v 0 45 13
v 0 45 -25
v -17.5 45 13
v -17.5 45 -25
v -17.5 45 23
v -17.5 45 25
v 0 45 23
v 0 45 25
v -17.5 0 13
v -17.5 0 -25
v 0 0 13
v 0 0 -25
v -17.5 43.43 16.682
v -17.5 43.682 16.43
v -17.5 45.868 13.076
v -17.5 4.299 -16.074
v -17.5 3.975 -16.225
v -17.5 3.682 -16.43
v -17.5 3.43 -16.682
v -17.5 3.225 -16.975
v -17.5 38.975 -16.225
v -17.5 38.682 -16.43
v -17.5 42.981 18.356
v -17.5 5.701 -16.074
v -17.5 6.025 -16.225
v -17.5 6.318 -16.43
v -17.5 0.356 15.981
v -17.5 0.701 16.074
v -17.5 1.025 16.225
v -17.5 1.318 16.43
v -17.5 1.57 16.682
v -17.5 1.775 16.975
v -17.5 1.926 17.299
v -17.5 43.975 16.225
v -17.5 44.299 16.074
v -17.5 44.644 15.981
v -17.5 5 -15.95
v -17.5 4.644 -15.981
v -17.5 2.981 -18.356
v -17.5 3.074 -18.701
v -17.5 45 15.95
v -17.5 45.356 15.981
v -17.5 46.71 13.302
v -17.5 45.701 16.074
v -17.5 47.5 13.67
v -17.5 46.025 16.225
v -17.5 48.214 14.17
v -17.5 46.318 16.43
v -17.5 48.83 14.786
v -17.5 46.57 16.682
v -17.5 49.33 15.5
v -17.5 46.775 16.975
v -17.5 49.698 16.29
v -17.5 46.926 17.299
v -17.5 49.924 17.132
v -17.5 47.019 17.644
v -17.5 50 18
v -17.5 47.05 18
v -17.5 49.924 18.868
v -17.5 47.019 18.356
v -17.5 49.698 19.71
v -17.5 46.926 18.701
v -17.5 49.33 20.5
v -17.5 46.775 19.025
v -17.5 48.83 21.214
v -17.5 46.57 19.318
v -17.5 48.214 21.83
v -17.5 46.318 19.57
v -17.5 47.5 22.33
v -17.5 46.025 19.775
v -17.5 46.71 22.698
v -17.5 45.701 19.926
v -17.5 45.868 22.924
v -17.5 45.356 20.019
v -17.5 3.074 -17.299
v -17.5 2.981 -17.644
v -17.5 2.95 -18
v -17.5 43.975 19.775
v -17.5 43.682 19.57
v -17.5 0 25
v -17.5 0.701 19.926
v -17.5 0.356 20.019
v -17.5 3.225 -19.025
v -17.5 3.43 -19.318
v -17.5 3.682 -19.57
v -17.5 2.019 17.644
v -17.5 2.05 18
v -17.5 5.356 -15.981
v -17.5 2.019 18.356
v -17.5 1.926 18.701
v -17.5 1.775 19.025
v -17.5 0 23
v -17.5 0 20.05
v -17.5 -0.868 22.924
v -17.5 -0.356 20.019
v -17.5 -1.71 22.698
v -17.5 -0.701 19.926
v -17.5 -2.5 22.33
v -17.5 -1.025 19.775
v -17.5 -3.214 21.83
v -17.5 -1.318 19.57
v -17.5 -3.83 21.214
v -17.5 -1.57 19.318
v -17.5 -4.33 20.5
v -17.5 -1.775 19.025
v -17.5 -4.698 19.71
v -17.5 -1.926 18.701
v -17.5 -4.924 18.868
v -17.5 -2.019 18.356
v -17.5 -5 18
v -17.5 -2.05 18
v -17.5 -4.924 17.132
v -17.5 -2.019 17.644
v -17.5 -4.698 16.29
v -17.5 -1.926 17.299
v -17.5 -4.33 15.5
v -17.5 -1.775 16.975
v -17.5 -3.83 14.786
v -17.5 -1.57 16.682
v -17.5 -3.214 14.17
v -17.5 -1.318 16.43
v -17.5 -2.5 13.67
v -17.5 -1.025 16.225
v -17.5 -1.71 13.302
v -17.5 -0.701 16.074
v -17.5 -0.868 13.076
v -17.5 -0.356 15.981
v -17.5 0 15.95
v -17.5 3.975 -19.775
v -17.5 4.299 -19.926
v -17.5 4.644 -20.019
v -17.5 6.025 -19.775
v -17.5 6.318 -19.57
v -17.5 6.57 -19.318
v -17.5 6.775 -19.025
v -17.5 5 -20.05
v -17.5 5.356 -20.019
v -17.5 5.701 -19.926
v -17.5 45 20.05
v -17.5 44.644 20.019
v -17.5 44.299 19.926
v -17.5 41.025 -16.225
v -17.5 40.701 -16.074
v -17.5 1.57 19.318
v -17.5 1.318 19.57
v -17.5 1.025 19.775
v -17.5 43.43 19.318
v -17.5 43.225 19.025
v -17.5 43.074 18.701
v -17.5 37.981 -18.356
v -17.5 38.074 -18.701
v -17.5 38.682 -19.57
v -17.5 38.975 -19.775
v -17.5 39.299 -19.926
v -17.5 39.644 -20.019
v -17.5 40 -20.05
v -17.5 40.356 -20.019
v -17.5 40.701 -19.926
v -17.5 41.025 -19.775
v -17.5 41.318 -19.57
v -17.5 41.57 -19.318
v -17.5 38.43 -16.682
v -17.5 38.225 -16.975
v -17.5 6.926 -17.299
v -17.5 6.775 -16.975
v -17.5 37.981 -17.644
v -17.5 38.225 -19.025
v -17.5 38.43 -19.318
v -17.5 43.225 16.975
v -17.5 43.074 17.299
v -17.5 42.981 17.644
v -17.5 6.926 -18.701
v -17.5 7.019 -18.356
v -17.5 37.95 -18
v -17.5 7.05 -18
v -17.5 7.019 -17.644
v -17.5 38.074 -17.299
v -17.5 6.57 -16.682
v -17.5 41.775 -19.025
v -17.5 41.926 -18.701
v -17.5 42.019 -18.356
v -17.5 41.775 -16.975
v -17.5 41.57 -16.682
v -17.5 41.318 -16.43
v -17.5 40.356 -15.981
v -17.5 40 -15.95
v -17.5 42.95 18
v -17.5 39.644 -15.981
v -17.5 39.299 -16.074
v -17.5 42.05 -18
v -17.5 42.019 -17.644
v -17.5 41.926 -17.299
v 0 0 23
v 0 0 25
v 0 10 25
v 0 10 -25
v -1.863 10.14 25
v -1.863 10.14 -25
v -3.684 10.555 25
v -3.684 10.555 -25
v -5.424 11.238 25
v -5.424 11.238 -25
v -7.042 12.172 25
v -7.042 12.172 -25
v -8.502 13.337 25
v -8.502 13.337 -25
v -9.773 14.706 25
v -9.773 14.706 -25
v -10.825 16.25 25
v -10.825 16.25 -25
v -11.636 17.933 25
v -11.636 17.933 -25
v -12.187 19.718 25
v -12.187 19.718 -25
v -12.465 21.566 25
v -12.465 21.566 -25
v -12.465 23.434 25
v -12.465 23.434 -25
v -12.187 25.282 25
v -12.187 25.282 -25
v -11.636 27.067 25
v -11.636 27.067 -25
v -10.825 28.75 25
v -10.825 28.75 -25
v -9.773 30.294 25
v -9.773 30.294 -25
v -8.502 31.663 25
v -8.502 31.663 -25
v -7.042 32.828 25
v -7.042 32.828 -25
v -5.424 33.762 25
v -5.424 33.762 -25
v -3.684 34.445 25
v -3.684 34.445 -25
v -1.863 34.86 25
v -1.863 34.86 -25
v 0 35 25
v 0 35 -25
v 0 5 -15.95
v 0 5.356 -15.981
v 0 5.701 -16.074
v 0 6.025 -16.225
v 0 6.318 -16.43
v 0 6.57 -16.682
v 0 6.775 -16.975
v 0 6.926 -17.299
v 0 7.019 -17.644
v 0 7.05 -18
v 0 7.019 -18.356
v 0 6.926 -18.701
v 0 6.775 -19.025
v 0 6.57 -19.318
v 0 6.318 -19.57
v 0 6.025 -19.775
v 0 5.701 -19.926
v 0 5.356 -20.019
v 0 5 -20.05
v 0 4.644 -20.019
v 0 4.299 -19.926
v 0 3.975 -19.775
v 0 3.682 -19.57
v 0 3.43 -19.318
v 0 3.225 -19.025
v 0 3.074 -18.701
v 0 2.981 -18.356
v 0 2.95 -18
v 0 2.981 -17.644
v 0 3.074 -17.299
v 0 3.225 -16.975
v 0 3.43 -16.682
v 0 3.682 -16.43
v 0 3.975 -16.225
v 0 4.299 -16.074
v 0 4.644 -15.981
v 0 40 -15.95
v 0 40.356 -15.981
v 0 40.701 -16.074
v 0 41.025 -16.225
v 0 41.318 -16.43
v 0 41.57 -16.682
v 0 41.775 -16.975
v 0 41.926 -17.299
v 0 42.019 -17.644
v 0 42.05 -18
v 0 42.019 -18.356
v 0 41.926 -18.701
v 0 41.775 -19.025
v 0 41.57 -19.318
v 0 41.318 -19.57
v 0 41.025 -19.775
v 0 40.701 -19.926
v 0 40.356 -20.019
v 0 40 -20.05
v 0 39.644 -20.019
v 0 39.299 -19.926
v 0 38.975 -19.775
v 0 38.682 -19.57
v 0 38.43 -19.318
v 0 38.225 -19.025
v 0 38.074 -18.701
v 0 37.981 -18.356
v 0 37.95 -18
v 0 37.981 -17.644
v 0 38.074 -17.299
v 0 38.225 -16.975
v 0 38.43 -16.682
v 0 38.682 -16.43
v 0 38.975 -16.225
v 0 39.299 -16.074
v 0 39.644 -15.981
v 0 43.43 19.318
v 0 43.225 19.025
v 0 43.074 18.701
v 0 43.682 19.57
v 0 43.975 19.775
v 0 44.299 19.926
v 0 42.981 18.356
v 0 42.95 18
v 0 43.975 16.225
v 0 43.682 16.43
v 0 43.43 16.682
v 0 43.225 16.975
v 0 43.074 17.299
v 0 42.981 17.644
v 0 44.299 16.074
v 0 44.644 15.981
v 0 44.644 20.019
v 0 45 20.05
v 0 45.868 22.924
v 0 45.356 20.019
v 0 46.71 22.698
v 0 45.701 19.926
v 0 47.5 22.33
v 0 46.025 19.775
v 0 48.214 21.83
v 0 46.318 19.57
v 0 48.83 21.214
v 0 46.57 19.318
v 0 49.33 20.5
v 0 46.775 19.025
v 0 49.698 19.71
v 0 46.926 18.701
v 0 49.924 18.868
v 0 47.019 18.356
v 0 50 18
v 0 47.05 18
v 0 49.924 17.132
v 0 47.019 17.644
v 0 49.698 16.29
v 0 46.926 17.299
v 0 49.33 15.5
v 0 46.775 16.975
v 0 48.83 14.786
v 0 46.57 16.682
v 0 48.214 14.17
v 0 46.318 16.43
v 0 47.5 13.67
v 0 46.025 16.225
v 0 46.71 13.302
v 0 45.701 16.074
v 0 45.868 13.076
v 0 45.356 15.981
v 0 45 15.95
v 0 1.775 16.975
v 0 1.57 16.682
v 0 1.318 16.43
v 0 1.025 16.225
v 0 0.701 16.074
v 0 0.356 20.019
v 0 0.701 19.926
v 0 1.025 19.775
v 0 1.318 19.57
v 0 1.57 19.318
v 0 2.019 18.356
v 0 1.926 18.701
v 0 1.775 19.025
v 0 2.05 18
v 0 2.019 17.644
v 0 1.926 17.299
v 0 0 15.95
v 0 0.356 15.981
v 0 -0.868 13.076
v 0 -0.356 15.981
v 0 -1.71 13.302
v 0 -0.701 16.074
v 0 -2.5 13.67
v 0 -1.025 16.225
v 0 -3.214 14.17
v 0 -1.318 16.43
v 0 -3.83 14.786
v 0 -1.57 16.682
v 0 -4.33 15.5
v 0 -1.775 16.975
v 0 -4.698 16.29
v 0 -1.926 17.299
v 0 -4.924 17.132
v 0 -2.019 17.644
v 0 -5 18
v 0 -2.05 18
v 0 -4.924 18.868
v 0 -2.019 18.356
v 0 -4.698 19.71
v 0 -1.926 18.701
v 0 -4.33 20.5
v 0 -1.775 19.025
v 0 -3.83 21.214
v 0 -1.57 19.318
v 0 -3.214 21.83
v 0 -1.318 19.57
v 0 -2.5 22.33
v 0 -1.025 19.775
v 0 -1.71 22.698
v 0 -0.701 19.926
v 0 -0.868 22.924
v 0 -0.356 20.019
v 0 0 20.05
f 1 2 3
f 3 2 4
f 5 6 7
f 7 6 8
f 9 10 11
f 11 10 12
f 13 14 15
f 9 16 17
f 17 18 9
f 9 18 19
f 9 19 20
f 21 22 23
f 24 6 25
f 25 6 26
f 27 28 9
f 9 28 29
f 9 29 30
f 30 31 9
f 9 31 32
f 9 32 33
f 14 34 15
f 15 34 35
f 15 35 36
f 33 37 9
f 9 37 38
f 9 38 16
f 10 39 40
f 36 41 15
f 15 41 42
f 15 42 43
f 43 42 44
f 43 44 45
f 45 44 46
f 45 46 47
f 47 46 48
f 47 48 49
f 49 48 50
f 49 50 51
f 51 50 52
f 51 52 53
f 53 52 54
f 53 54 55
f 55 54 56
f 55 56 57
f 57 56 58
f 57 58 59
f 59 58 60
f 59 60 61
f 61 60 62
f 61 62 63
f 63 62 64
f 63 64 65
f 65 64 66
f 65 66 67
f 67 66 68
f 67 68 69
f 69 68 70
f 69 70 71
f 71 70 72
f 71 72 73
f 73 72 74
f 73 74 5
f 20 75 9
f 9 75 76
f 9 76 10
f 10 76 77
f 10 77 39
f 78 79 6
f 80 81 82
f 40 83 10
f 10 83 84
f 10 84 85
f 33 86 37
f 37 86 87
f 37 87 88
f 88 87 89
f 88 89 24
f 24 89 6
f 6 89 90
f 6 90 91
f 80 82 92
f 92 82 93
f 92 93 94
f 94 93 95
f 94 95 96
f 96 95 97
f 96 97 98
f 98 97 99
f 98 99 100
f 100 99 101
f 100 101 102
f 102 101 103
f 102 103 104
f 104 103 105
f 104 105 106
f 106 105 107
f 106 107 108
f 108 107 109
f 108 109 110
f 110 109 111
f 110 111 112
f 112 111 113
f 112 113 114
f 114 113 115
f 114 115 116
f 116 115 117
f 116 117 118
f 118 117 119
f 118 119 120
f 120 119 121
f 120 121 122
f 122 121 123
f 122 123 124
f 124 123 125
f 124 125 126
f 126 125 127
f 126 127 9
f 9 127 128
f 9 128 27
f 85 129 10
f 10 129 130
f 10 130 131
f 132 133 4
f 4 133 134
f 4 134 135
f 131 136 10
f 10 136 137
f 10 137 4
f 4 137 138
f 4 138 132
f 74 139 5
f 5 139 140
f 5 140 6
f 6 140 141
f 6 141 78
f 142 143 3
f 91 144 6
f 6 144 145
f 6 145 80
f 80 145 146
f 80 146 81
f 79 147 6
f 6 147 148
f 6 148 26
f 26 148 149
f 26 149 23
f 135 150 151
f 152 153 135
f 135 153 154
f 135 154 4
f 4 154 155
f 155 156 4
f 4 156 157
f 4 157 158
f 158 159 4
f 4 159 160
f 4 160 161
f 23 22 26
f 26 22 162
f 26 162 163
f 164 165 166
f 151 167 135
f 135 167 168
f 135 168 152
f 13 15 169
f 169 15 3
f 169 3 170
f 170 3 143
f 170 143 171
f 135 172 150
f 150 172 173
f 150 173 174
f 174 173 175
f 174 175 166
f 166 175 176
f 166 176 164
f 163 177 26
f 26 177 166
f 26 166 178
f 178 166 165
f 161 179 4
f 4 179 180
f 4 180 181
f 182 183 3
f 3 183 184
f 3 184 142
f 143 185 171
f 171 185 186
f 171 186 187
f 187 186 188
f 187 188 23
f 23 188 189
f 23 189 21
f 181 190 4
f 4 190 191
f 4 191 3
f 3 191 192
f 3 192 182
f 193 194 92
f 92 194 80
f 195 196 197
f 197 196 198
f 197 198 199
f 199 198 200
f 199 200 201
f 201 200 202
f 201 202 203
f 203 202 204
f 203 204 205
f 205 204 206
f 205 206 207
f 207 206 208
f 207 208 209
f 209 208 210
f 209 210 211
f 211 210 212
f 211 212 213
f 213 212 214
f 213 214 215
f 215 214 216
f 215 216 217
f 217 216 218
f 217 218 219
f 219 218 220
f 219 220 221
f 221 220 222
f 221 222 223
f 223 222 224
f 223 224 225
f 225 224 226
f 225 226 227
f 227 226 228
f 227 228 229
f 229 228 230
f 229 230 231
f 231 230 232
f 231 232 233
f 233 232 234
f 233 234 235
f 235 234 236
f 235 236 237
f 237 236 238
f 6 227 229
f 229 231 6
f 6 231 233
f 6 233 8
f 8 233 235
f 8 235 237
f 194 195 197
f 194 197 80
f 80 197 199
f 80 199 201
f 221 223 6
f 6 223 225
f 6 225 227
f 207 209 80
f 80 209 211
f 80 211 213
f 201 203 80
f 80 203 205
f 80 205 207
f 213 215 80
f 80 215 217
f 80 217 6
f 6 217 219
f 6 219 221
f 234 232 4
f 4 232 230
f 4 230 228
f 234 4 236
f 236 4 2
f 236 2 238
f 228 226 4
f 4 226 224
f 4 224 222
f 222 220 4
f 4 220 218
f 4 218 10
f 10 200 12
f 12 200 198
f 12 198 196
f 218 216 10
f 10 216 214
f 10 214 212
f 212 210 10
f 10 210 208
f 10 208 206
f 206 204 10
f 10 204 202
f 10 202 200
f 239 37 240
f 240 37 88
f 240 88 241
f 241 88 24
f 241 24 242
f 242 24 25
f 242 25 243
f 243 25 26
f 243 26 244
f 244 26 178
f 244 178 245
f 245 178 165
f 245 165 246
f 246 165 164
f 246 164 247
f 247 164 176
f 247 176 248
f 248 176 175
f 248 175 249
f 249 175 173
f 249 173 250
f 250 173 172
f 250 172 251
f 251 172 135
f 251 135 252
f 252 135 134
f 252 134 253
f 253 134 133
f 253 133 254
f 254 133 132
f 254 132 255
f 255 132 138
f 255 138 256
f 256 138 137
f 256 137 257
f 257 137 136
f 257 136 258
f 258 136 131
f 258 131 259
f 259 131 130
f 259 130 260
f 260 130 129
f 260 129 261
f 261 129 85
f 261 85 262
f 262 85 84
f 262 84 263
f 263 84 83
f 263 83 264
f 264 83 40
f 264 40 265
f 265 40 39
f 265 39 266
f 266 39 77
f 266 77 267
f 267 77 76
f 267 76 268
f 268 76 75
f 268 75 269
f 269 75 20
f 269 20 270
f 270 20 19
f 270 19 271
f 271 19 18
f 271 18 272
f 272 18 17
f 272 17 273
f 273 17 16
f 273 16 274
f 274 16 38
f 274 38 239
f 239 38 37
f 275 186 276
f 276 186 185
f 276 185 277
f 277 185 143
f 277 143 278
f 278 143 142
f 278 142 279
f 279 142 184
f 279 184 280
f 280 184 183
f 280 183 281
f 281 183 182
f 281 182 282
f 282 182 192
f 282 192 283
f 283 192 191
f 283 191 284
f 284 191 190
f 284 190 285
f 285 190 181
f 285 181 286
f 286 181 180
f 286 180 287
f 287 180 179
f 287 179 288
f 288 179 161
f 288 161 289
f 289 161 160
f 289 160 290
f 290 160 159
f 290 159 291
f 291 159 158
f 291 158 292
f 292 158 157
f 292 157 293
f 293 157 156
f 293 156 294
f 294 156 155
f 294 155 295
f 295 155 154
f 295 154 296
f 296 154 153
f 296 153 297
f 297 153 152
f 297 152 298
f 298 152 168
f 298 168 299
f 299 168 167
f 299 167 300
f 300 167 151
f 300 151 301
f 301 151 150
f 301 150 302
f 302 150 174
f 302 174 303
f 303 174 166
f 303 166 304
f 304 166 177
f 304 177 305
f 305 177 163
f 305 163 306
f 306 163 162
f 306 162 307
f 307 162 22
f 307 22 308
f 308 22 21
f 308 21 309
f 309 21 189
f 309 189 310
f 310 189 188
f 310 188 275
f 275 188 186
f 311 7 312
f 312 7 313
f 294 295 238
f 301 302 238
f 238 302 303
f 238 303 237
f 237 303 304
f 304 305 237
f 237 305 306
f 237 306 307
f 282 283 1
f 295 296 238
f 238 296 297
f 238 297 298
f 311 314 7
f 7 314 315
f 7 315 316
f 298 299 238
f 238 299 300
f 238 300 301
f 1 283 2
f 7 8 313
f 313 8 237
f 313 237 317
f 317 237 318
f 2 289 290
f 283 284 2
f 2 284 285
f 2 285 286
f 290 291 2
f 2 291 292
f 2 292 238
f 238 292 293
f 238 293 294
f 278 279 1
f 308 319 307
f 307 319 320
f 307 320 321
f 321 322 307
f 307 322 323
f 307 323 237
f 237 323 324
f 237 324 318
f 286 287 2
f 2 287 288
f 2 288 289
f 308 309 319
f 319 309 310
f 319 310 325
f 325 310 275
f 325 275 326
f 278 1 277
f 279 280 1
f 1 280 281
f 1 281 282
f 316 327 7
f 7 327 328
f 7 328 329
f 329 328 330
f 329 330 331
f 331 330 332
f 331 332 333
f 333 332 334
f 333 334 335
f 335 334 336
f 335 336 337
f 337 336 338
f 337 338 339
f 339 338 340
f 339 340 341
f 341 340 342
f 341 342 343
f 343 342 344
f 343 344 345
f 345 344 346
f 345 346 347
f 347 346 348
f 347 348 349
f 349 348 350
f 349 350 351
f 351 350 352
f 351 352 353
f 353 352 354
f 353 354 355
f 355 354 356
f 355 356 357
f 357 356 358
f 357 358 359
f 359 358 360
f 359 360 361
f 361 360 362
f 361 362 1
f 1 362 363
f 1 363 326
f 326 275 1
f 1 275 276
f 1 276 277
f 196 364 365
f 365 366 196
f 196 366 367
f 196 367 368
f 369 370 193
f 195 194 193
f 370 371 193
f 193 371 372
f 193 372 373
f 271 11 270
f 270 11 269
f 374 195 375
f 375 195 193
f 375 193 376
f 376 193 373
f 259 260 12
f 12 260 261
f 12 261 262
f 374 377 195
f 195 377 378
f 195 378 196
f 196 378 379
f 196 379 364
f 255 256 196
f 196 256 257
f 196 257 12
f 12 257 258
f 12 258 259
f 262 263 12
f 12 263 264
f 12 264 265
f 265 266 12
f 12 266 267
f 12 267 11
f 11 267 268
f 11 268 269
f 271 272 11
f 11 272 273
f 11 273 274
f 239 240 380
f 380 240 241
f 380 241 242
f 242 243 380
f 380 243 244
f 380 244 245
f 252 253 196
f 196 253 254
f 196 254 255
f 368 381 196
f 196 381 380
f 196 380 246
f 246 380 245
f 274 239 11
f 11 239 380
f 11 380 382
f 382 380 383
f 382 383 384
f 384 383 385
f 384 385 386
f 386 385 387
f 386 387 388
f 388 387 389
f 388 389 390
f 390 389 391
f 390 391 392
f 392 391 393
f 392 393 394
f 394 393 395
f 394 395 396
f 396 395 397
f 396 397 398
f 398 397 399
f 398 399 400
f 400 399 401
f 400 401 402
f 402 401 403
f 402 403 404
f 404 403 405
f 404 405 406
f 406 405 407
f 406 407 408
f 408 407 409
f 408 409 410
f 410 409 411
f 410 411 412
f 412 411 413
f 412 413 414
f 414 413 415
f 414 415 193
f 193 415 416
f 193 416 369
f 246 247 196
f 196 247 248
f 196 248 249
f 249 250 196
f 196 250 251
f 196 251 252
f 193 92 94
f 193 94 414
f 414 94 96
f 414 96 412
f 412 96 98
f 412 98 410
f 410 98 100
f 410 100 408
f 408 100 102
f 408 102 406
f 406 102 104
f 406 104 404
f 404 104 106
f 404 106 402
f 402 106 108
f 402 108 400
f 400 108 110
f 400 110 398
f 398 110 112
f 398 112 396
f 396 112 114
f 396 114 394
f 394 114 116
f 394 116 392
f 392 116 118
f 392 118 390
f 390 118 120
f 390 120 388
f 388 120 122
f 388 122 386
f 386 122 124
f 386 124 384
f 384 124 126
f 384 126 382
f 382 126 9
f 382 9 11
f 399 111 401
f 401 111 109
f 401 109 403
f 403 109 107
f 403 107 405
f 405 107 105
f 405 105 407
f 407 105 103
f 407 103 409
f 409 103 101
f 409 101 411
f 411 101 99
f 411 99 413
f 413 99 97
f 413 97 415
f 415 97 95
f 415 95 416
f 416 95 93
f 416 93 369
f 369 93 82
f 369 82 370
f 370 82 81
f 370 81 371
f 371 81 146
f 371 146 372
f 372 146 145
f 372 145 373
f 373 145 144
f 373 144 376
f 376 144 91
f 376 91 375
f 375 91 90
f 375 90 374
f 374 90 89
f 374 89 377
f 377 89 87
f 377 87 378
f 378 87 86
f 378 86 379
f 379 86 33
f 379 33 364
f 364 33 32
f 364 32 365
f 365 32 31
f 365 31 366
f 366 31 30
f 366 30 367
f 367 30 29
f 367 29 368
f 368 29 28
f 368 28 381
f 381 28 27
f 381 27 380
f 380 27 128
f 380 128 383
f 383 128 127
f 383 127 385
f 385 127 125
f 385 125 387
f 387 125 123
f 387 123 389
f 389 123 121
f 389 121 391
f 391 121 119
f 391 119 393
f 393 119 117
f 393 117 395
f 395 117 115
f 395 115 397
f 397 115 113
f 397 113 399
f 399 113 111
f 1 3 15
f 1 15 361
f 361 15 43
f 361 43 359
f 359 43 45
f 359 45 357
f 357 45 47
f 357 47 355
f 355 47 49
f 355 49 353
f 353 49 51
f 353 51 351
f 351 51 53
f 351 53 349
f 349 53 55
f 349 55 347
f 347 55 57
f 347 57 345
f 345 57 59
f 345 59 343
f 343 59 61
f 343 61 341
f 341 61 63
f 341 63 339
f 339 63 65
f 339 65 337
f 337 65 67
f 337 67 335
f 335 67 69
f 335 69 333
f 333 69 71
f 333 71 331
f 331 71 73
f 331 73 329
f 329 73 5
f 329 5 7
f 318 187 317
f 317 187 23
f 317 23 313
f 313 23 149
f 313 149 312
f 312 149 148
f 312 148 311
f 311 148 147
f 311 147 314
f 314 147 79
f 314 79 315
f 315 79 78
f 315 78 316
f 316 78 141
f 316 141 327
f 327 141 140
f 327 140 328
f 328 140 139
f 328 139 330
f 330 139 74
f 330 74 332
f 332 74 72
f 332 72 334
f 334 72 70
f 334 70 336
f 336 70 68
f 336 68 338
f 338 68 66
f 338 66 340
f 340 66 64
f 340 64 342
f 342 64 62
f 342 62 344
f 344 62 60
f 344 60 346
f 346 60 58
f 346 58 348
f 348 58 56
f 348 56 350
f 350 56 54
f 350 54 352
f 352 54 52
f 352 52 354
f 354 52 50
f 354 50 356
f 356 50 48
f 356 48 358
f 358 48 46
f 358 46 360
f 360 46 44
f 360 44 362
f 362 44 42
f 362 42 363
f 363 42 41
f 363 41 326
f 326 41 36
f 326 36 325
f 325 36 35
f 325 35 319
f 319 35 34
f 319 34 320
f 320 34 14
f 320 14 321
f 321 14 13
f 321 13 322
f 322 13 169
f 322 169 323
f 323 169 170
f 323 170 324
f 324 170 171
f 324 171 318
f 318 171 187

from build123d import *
from build123d.topology import SkipClean

# Parameters (mm, degrees)
BOSS_EXTRUDE1_DEPTH             = 25
BOSS_EXTRUDE2_REACH             = 65.362
BOSS_EXTRUDE2_DIRECTION_2_DEPTH = 30
SKETCH9_R                       = 2.05
CUT_EXTRUDE3_DEPTH              = 35
BOSS_EXTRUDE5_REACH             = 63.601
SKETCH13_R                      = 1.55
CUT_EXTRUDE4_DEPTH              = 88.693844753
SKETCH16_W                      = 63
SKETCH16_H                      = 45
CUT_EXTRUDE5_DEPTH              = 65.196143
BOSS_EXTRUDE6_DEPTH             = 17.5
SKETCH18_R                      = 2.05
CUT_EXTRUDE6_DEPTH              = 17.5


with BuildPart() as part:
    # Sketch1 → Boss-Extrude1 (new, symmetric)
    with BuildSketch(Plane.XY):
        with BuildLine():
            Line((-17.5, 22.5), (-17.5, 0))
            Line((-17.5, 0), (17.5, 0))
            Line((17.5, 0), (17.5, 22.5))
            Line((17.5, 22.5), (12.5, 22.5))
            ThreePointArc((12.5, 22.5), (0, 10), (-12.5, 22.5))
            Line((-12.5, 22.5), (-17.5, 22.5))
        make_face()
    boss_extrude1 = extrude(amount=BOSS_EXTRUDE1_DEPTH, both=True)

    # Boss-Extrude2: up to this face of the body (flat: up to its plane)
    boss_extrude2_end = Plane(part.part.faces().sort_by_distance((17.5, 11.25, 0))[0])
    # Sketch5 → Boss-Extrude2 (add, up to the picked face)
    with BuildSketch(Plane(origin=(26.115381057, 0, 15.077722283), x_dir=(0.500000000000001, 0, -0.8660254037844382), z_dir=(0.8660254037844382, 0, 0.500000000000001)), mode=Mode.PRIVATE) as boss_extrude2_sk1:
        with BuildLine():
            Line((-8.7, 22.5), (-3.75, 22.5))
            ThreePointArc((-3.75, 22.5), (8.75, 10), (21.25, 22.5))
            Line((21.25, 22.5), (26.2, 22.5))
            ThreePointArc((26.2, 22.5), (8.75, 5.05), (-8.7, 22.5))
        make_face()
    boss_extrude2_tool1 = split(extrude(boss_extrude2_sk1.sketch, amount=-BOSS_EXTRUDE2_REACH, mode=Mode.PRIVATE), bisect_by=boss_extrude2_end, keep=Keep.BOTH, mode=Mode.PRIVATE)
    boss_extrude2 = boss_extrude2_tool1.solids().sort_by(Axis((23.002881, 22.109806, 20.46873), (-0.8660254037844382, 0, -0.500000000000001)))[0]
    add(boss_extrude2)

    # Sketch5 → Boss-Extrude2 direction 2 (add)
    with BuildSketch(Plane(origin=(26.115381057, 0, 15.077722283), x_dir=(0.500000000000001, 0, -0.8660254037844382), z_dir=(0.8660254037844382, 0, 0.500000000000001))):
        with BuildLine():
            Line((-8.7, 22.5), (-3.75, 22.5))
            ThreePointArc((-3.75, 22.5), (8.75, 10), (21.25, 22.5))
            Line((21.25, 22.5), (26.2, 22.5))
            ThreePointArc((26.2, 22.5), (8.75, 5.05), (-8.7, 22.5))
        make_face()
    boss_extrude2_direction_2 = extrude(amount=BOSS_EXTRUDE2_DIRECTION_2_DEPTH)

    # Sketch9 → Cut-Extrude3 (cut)
    with BuildSketch(Plane.ZY.offset(17.5)):
        with Locations((-18, 5)):
            Circle(SKETCH9_R)
    cut_extrude3 = extrude(amount=-CUT_EXTRUDE3_DEPTH, mode=Mode.SUBTRACT)

    # Boss-Extrude5: up to this face of the body (flat: up to its plane)
    boss_extrude5_end = Plane(part.part.faces().sort_by_distance((17.5, 17.19483523, 0))[0])
    # Sketch12 → Boss-Extrude5 (add, up to the picked face)
    with BuildSketch(Plane(origin=(21.973076211, 0, 12.686161466), x_dir=(0.4999999999999999, 0, -0.8660254037844388), z_dir=(0.8660254037844388, 0, 0.4999999999999999)), mode=Mode.PRIVATE) as boss_extrude5_sk1:
        with BuildLine():
            Line((-3.75, 22.5), (21.25, 22.5))
            ThreePointArc((21.25, 22.5), (8.75, 10), (-3.75, 22.5))
        make_face()
    boss_extrude5_tool1 = split(extrude(boss_extrude5_sk1.sketch, amount=-BOSS_EXTRUDE5_REACH, mode=Mode.PRIVATE), bisect_by=boss_extrude5_end, keep=Keep.BOTH, mode=Mode.PRIVATE)
    boss_extrude5 = boss_extrude5_tool1.solids().sort_by(Axis((26.348076, 17.194835, 5.108439), (-0.8660254037844388, 0, -0.4999999999999999)))[0]
    add(boss_extrude5)

    # Mirror1: Boss-Extrude1, Boss-Extrude2, Boss-Extrude2 direction 2, Cut-Extrude3, Boss-Extrude5 across plane
    with SkipClean():  # the faces are left unmerged after this step: merging them gives an invalid solid
        add(boss_extrude1.mirror(Plane(origin=(17.5, 22.5, 25), x_dir=(0, 0, 1), z_dir=(0, -1, 0))))
        add(boss_extrude2.mirror(Plane(origin=(17.5, 22.5, 25), x_dir=(0, 0, 1), z_dir=(0, -1, 0))))
        add(boss_extrude2_direction_2.mirror(Plane(origin=(17.5, 22.5, 25), x_dir=(0, 0, 1), z_dir=(0, -1, 0))))
        add(cut_extrude3.mirror(Plane(origin=(17.5, 22.5, 25), x_dir=(0, 0, 1), z_dir=(0, -1, 0))), mode=Mode.SUBTRACT)
        add(boss_extrude5.mirror(Plane(origin=(17.5, 22.5, 25), x_dir=(0, 0, 1), z_dir=(0, -1, 0))))

    # Sketch13 → Cut-Extrude4 (cut, through all)
    with SkipClean():  # the faces are left unmerged after this step: merging them gives an invalid solid
        with BuildSketch(Plane(origin=(0, 0, 0), x_dir=(1, 0, 0), z_dir=(0, 1, 0))):
            with Locations(Location((43.480762114, -15, 0), (0, 0, 90))):
                Circle(SKETCH13_R)
        extrude(amount=CUT_EXTRUDE4_DEPTH, mode=Mode.SUBTRACT)

    # Sketch16 → Cut-Extrude5 (cut)
    with BuildSketch(Plane(origin=(0, 0, 0), x_dir=(0, 0, -1), z_dir=(1, 0, 0))):
        with Locations((-6.5, 22.5)):
            Rectangle(SKETCH16_W, SKETCH16_H)
    extrude(amount=CUT_EXTRUDE5_DEPTH, mode=Mode.SUBTRACT)

    # Sketch17 → Boss-Extrude6 (add)
    with BuildSketch(Plane.ZY.offset(17.5)):
        with BuildLine():
            Line((13, 0), (23, 0))
            ThreePointArc((23, 0), (18, -5), (13, 0))
        make_face()
    boss_extrude6 = extrude(amount=-BOSS_EXTRUDE6_DEPTH)

    # Sketch18 → Cut-Extrude6 (cut)
    with BuildSketch(Plane.ZY.offset(17.5)):
        with Locations(Location((18, 0, 0), (0, 0, 270))):
            Circle(SKETCH18_R)
    cut_extrude6 = extrude(amount=-CUT_EXTRUDE6_DEPTH, mode=Mode.SUBTRACT)

    # Mirror2: Boss-Extrude6, Cut-Extrude6 across plane
    add(boss_extrude6.mirror(Plane.ZX.offset(22.5)))
    add(cut_extrude6.mirror(Plane.ZX.offset(22.5)), mode=Mode.SUBTRACT)


solid = part.part
